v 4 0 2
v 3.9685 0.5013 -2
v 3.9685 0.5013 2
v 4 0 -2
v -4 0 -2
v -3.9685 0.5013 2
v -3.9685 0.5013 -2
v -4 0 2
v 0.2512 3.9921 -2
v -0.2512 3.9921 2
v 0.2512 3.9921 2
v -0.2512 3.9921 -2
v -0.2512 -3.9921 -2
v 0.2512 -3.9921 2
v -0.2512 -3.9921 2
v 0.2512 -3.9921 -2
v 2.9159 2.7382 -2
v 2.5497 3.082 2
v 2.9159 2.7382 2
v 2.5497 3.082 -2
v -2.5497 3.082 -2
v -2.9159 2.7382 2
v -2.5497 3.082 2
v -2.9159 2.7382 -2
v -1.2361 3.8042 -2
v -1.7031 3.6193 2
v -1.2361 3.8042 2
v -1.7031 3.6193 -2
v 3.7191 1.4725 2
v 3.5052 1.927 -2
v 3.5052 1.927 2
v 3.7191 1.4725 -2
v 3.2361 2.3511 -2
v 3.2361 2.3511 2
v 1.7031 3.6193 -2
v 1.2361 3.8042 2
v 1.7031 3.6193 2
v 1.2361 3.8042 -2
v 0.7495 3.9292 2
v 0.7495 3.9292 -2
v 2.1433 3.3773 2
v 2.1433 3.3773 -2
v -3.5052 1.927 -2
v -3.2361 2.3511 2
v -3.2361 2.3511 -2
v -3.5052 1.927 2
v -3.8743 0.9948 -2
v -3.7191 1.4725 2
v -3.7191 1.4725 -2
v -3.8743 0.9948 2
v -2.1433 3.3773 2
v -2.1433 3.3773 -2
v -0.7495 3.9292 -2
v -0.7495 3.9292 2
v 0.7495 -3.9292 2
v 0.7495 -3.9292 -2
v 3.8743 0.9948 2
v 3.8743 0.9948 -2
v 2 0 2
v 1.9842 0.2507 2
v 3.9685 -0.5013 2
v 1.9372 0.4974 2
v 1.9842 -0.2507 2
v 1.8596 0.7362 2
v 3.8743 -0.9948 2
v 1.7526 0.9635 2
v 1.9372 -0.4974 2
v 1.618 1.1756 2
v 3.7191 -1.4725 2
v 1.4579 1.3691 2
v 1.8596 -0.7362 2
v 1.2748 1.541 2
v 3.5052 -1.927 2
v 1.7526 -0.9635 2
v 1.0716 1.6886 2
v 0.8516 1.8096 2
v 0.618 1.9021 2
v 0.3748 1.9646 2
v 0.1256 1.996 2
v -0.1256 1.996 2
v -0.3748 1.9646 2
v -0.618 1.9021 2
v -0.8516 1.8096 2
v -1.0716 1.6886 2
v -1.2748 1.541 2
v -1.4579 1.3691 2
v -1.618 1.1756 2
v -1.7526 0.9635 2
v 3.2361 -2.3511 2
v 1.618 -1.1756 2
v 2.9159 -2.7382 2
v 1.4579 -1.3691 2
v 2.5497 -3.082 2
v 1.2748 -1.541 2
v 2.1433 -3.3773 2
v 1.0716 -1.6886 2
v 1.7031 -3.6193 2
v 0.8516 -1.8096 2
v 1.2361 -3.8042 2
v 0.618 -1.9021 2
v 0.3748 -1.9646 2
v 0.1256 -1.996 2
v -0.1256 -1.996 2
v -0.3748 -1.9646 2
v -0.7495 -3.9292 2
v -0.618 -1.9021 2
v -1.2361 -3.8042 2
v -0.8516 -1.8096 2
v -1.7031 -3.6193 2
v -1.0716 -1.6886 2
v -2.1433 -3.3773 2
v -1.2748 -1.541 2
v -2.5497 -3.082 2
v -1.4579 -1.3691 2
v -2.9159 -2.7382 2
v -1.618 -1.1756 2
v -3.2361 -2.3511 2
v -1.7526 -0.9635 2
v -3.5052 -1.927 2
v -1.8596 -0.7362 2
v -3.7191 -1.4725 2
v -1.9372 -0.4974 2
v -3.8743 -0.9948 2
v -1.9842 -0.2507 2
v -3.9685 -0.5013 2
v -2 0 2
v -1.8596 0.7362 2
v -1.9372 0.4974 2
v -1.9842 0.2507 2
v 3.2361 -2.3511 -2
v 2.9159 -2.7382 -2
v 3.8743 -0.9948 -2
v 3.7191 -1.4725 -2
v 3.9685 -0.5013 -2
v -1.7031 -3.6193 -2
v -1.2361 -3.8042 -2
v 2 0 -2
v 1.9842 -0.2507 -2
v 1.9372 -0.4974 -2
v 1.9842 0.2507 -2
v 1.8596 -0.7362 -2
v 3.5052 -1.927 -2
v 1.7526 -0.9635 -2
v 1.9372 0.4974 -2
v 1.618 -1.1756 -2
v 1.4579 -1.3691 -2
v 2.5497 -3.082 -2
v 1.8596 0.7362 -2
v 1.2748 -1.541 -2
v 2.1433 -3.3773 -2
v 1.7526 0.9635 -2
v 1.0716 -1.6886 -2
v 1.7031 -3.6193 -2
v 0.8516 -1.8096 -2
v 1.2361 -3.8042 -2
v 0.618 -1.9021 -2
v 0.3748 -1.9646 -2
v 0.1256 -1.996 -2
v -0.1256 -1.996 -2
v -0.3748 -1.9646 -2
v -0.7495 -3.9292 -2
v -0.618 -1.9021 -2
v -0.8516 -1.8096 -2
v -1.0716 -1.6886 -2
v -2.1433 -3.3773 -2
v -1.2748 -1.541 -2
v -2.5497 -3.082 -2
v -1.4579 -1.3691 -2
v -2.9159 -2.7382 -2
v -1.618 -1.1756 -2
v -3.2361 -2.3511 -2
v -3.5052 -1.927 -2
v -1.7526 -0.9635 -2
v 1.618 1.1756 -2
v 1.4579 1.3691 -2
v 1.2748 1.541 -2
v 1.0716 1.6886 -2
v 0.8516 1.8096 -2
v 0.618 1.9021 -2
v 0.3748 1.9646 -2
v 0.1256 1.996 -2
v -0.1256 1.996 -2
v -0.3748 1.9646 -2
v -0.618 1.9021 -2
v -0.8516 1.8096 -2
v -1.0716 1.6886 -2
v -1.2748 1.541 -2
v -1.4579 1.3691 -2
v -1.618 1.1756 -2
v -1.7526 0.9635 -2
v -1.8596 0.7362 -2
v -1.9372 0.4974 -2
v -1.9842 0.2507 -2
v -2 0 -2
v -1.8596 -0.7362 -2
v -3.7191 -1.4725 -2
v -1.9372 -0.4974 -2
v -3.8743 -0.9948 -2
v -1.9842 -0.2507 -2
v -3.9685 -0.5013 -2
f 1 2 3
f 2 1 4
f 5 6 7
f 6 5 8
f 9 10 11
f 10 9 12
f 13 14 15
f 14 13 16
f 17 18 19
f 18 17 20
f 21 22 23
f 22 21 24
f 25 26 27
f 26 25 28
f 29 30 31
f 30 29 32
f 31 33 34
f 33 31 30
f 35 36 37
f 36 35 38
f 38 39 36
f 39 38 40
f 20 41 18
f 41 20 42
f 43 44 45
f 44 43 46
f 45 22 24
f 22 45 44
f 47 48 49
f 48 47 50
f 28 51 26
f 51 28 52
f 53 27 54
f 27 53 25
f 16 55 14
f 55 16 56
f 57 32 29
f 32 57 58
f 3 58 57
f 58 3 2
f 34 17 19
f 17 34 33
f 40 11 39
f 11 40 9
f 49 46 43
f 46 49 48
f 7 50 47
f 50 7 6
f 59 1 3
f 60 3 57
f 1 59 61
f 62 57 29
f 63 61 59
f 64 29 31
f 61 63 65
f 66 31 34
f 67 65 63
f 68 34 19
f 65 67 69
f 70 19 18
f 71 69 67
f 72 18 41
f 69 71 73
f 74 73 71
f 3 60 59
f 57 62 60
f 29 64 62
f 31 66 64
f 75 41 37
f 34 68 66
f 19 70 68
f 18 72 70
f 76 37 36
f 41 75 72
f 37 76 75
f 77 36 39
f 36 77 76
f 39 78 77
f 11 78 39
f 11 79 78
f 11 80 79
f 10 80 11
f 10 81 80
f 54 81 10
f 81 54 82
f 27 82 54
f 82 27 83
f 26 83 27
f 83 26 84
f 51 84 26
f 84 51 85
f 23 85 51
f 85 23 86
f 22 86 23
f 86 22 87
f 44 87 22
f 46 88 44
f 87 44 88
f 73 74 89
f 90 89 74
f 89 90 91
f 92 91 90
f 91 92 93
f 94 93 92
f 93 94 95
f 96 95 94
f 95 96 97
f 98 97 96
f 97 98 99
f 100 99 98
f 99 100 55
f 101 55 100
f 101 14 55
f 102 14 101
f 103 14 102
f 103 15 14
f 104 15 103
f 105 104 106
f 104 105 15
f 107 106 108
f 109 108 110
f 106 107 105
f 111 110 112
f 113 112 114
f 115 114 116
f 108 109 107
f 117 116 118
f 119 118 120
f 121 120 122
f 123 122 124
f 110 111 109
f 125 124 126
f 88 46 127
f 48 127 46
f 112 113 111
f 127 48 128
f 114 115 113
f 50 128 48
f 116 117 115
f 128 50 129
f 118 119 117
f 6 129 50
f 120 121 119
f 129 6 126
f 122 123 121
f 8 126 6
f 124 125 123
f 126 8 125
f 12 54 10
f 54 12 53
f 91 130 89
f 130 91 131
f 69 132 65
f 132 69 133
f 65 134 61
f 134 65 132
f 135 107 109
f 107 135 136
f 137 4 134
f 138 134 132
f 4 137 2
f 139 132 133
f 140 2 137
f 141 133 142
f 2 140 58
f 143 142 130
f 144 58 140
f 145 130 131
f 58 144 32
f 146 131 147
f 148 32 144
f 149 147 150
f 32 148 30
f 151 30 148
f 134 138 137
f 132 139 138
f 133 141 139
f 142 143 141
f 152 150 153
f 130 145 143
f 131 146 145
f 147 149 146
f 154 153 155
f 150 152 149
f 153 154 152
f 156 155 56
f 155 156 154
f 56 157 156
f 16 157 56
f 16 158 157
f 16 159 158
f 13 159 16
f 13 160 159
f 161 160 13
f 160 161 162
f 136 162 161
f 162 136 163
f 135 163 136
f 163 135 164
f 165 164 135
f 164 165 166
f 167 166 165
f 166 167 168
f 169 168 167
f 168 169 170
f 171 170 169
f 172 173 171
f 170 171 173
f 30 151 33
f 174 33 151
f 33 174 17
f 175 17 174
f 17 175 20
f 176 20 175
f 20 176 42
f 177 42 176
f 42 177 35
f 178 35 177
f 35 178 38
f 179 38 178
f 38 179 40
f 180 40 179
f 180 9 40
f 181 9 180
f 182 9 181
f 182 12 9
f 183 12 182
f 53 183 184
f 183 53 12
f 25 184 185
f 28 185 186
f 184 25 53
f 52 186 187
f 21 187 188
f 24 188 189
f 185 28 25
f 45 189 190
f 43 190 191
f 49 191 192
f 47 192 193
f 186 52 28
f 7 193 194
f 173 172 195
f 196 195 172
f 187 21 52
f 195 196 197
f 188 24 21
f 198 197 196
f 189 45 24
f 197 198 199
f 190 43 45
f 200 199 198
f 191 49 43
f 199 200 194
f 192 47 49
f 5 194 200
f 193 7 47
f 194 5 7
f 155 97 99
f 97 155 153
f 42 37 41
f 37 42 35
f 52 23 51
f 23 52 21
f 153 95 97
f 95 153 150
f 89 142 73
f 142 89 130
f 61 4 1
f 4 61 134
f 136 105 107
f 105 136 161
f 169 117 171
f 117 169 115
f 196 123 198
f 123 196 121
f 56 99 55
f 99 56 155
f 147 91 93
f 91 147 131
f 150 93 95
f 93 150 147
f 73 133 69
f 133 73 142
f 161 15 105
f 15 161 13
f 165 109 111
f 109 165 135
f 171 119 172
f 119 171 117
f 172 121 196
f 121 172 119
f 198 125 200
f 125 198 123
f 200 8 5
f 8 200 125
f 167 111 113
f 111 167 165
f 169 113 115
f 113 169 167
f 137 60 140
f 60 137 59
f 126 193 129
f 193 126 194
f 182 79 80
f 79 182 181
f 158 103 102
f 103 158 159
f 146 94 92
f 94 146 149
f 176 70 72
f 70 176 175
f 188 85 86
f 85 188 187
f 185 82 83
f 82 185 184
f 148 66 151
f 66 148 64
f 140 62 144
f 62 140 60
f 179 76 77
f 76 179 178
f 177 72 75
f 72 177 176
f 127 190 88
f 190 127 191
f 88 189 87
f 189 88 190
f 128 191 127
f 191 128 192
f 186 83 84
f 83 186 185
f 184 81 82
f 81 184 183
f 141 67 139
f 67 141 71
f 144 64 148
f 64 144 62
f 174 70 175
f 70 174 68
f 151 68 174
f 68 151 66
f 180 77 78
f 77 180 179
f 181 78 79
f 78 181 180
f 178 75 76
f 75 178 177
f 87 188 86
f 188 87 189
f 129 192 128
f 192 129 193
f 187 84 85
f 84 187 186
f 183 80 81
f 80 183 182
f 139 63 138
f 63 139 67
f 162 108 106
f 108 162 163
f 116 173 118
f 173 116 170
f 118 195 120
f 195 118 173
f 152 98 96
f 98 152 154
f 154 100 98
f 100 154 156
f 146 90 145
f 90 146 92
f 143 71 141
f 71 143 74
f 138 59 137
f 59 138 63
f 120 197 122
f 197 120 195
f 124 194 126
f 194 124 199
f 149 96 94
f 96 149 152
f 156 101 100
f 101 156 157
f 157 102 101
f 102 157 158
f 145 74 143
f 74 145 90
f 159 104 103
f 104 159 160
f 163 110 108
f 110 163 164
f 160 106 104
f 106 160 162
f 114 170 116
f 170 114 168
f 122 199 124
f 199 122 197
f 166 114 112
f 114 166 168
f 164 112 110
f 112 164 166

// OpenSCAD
$fn = 50;


difference() {
	union() {
		translate(v = [0, 0, -2.0000000000]) {
			cylinder(h = 4, r = 4.0000000000);
		}
	}
	union() {
		translate(v = [0, 0, -100.0000000000]) {
			cylinder(h = 200, r = 2);
		}
	}
}
